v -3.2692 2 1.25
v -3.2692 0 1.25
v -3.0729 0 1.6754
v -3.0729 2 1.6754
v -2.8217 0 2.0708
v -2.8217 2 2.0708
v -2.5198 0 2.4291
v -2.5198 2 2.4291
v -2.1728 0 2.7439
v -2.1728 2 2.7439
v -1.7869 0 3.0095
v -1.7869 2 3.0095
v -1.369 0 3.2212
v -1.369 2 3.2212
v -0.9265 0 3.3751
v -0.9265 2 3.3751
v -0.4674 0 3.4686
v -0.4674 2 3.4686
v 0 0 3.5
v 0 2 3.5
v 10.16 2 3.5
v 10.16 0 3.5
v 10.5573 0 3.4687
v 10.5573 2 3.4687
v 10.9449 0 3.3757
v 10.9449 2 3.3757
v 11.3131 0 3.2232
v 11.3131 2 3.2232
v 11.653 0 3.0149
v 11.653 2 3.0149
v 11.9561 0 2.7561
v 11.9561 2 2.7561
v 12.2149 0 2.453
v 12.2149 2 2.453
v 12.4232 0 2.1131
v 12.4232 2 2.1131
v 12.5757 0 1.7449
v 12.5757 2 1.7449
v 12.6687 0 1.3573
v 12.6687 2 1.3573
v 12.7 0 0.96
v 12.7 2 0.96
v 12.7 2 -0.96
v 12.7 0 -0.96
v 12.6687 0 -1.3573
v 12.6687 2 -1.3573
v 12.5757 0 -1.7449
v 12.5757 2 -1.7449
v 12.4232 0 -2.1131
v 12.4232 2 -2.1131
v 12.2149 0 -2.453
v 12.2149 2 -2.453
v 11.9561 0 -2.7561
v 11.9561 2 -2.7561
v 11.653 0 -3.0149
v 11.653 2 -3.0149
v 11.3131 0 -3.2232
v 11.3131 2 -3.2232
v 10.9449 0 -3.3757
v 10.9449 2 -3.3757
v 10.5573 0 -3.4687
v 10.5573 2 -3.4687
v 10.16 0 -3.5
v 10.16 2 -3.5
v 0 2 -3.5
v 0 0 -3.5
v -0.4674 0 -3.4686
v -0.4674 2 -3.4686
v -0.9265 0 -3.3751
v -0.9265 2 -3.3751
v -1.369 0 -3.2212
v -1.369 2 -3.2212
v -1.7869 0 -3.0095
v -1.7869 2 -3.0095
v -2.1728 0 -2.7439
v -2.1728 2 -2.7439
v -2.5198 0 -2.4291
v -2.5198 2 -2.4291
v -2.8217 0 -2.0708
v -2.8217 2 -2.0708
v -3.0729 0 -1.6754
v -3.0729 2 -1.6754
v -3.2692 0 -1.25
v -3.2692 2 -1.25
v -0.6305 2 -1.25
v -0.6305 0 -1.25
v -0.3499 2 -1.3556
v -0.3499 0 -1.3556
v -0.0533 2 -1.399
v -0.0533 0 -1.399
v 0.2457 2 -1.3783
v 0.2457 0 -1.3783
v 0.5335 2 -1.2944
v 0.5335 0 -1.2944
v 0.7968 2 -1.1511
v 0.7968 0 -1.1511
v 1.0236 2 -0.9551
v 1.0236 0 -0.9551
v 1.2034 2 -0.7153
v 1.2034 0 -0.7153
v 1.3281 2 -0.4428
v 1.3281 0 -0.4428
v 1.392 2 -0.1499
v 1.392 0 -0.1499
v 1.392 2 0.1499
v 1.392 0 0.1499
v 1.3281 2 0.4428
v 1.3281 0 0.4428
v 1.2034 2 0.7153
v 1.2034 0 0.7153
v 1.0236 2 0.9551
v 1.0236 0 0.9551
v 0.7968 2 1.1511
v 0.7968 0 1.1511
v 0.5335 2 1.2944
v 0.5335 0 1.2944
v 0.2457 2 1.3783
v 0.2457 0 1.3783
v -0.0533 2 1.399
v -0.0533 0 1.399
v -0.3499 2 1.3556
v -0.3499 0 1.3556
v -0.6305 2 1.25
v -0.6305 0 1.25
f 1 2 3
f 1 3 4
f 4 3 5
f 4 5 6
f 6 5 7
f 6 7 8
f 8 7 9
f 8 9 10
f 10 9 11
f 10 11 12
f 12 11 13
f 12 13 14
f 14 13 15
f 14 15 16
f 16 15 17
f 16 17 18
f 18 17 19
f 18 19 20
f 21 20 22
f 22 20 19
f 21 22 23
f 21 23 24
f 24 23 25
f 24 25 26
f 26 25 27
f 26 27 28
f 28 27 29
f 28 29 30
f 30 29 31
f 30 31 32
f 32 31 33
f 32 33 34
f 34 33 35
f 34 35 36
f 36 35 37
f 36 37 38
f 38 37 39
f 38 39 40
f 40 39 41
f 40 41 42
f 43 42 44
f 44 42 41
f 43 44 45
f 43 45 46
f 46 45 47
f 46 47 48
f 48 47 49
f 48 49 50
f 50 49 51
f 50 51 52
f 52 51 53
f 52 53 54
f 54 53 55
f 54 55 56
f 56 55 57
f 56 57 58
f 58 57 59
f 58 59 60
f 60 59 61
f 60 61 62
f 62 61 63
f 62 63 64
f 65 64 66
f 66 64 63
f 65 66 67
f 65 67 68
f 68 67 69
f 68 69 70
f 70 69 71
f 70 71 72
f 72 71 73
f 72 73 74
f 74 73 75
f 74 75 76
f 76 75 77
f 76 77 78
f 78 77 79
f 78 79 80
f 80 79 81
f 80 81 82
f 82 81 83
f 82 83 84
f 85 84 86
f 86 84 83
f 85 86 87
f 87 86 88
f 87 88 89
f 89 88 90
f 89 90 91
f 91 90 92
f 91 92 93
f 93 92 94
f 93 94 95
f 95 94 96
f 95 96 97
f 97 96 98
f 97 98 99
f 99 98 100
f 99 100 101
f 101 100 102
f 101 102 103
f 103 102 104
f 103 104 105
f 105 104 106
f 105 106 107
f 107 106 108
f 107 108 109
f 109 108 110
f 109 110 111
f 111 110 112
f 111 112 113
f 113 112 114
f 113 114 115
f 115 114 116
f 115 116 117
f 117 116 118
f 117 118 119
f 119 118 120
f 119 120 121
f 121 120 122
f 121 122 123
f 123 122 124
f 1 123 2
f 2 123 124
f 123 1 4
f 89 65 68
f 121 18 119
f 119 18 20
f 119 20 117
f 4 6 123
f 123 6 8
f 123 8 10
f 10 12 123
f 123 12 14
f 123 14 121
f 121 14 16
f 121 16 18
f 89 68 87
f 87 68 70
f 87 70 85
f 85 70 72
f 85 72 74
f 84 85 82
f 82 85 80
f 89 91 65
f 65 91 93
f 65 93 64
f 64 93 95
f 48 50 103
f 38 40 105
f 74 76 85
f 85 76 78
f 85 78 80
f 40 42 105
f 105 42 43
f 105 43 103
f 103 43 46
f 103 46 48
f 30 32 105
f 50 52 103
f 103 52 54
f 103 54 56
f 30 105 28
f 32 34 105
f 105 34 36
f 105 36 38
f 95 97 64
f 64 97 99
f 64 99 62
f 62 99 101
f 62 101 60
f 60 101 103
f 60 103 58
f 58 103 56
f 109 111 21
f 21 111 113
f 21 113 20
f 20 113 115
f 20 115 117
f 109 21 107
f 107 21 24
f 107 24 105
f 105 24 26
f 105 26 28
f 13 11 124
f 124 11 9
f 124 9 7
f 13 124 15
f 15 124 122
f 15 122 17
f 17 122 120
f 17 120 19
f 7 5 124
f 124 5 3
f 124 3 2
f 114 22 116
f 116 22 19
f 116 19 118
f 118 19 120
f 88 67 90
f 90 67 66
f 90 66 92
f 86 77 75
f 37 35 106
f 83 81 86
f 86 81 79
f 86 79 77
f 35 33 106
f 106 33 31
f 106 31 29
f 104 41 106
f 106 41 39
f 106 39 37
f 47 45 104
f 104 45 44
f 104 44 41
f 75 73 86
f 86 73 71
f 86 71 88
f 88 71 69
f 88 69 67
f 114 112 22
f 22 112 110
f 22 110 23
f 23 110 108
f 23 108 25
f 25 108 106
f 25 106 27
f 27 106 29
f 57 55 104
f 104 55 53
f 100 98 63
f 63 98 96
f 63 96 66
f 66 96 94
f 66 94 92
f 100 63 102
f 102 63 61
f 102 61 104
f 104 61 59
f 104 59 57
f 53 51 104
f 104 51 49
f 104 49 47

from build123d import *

# Parameters (mm, degrees)
BOSS_EXTRUDE1_DEPTH = 2


with BuildPart() as part:
    # Sketch1 → Boss-Extrude1 (new body)
    with BuildSketch(Plane(origin=(0, 0, 0), x_dir=(1, 0, 0), z_dir=(0, 1, 0))):
        with BuildLine():
            ThreePointArc((0, 3.5), (-1.984314586, 2.88313989), (-3.269175164, 1.2499975))
            Line((-3.269175164, 1.2499975), (-0.630480967, 1.2499975))
            ThreePointArc((-0.630480967, 1.2499975), (1.4, 0), (-0.630480967, -1.2499975))
            Line((-0.630480967, -1.2499975), (-3.269175164, -1.2499975))
            ThreePointArc((-3.269175164, -1.2499975), (-1.984314586, -2.88313989), (0, -3.5))
            Line((0, -3.5), (10.16, -3.5))
            ThreePointArc((10.16, -3.5), (11.956051224, -2.756051224), (12.7, -0.96))
            Line((12.7, -0.96), (12.7, 0.96))
            ThreePointArc((12.7, 0.96), (11.956051224, 2.756051224), (10.16, 3.5))
            Line((10.16, 3.5), (0, 3.5))
        make_face()
    extrude(amount=BOSS_EXTRUDE1_DEPTH)


solid = part.part
